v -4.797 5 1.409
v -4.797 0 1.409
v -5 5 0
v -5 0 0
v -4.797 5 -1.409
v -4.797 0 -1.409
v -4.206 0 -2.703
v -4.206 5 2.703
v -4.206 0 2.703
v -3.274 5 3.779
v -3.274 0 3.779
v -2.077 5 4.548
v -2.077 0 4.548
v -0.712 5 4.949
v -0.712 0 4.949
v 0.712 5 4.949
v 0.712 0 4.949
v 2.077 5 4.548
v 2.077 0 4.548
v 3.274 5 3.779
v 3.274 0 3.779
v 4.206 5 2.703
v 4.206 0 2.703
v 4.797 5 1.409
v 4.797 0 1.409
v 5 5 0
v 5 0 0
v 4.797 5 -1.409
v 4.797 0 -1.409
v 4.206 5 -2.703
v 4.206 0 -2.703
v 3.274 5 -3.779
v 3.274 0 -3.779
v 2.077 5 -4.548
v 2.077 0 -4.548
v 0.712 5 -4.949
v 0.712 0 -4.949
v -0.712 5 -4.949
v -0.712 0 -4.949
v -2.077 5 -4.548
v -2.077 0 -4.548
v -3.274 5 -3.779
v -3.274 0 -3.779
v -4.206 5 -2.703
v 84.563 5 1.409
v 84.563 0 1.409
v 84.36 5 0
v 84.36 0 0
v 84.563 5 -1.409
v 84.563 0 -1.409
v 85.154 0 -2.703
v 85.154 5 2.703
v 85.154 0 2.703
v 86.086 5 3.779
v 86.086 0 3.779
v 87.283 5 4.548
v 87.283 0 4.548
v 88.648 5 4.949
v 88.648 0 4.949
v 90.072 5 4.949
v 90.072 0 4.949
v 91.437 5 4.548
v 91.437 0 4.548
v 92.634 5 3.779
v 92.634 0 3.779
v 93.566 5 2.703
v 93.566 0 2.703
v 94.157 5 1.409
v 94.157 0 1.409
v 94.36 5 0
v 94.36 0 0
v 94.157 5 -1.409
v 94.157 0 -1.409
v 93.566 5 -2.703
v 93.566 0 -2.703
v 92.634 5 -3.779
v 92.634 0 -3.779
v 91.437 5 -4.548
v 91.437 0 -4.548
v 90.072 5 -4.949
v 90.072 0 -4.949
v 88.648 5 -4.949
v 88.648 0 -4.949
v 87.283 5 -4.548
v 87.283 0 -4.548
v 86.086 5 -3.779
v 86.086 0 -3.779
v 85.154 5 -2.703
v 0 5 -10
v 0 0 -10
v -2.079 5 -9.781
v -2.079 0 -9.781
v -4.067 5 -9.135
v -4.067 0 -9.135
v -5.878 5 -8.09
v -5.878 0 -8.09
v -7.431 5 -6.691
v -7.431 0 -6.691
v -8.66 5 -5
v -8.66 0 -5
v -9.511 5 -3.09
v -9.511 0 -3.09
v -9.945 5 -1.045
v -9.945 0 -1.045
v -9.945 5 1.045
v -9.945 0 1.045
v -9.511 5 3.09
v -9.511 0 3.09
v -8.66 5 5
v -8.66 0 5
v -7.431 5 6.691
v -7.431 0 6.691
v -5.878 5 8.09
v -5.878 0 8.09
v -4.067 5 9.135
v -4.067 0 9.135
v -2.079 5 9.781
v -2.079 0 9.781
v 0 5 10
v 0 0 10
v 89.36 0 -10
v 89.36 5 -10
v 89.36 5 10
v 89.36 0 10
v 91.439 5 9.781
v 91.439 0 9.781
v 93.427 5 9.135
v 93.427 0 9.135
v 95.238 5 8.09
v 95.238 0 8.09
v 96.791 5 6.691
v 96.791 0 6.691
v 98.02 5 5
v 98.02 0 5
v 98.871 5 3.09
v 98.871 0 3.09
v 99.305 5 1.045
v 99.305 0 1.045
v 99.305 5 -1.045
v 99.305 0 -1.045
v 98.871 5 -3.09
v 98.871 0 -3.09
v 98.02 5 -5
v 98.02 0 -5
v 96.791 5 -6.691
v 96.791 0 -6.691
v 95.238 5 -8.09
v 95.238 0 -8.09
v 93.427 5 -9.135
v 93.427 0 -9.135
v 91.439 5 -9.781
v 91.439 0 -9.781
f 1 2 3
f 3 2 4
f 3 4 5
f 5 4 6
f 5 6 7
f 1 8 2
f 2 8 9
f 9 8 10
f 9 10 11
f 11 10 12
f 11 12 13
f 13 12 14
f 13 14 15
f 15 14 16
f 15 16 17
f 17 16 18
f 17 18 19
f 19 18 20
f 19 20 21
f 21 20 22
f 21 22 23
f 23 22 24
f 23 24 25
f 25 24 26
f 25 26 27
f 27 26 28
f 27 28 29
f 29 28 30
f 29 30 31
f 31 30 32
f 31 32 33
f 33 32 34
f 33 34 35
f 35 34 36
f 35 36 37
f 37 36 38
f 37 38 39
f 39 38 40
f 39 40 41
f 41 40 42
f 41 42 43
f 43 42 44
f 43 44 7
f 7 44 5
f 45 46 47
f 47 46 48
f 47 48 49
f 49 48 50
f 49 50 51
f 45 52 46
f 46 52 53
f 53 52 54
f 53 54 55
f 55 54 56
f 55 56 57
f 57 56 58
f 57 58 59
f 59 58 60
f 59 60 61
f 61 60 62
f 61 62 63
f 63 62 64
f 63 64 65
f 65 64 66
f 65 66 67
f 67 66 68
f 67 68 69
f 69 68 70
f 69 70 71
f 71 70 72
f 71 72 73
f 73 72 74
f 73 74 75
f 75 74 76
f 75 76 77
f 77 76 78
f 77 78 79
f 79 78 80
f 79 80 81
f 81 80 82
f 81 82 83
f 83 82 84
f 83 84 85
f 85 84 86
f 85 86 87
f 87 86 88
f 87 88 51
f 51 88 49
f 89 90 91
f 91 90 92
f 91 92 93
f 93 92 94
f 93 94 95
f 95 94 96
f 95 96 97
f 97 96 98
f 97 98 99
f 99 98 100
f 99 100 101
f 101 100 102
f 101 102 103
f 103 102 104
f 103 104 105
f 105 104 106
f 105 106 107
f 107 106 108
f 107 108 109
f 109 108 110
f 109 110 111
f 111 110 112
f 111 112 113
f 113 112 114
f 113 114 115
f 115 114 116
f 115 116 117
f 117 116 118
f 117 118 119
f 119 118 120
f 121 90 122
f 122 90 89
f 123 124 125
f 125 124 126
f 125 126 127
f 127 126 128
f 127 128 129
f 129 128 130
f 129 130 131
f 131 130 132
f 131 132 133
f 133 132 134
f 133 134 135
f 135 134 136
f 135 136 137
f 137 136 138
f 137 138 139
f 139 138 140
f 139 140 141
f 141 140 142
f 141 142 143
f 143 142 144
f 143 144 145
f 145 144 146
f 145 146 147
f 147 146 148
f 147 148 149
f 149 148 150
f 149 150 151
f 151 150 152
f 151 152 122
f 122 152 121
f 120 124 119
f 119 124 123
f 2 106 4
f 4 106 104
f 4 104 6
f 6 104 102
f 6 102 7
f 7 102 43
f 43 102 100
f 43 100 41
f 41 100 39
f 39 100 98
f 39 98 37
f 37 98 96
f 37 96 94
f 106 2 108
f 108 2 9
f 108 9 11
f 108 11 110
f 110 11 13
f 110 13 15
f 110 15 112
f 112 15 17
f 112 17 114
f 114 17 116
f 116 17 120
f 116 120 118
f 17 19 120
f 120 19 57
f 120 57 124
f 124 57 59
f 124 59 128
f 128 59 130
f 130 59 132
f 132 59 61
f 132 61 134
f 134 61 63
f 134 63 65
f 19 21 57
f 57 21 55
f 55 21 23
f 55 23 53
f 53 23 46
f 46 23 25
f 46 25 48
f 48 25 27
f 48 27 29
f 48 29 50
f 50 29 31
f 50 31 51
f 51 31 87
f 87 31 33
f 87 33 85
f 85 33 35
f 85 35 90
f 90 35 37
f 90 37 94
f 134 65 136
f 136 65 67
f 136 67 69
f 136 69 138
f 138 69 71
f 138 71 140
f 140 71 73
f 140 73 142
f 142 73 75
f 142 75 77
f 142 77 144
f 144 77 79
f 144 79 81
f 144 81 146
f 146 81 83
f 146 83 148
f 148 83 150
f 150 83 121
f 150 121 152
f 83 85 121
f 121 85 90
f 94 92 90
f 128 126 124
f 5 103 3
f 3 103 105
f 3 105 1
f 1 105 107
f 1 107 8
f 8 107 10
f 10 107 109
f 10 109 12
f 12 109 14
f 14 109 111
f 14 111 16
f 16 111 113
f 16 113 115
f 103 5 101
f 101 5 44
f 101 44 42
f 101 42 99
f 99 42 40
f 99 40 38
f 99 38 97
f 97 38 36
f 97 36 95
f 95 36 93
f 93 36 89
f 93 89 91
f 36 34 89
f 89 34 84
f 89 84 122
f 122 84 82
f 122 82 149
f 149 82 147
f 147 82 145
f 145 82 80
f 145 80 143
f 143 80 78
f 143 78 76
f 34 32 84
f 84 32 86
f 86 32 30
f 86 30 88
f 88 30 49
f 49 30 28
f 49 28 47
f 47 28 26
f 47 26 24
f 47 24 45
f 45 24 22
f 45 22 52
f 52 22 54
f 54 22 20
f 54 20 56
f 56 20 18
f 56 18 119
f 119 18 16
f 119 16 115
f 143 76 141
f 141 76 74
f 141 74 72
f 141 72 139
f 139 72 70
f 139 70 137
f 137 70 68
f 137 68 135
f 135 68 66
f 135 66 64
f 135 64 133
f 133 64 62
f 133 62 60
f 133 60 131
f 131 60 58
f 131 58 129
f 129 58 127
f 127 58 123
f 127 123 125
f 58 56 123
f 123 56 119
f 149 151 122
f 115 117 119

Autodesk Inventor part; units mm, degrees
ref_plane "YZ Plane" through (0, 0, 0) normal (1, 0, 0) x (0, 1, 0)
ref_plane "XZ Plane" through (0, 0, 0) normal (0, 1, 0) x (-1, 0, 0)
ref_plane "XY Plane" through (0, 0, 0) normal (0, 0, 1) x (1, 0, 0)
sketch "草圖3" plane through (0, 0, 0) normal (0, 1, 0) x (-1, 0, 0)
  line L0 (-99.36, 0) -> (10, 0) construction
  line L1 (-89.36, 10) -> (0, 10)
  line L2 (0, -10) -> (-89.36, -10)
  arc A0 (-89.36, 10) -> (-89.36, -10) centre (-89.36, 0) ccw
  arc A1 (0, -10) -> (0, 10) centre (0, 0) ccw
  circle A2 centre (-89.36, 0) radius 5
  circle A3 centre (0, 0) radius 5
  point P0 (-44.68, 0)
  dimension "hole" = 10
  dimension "d14" = 20
  dimension "center_distance" = 89.36
extrude "擠出3" add sketch "草圖3" along normal blind 5
equation "\"d14\" = 2 * hole"
properties part number "test6"
